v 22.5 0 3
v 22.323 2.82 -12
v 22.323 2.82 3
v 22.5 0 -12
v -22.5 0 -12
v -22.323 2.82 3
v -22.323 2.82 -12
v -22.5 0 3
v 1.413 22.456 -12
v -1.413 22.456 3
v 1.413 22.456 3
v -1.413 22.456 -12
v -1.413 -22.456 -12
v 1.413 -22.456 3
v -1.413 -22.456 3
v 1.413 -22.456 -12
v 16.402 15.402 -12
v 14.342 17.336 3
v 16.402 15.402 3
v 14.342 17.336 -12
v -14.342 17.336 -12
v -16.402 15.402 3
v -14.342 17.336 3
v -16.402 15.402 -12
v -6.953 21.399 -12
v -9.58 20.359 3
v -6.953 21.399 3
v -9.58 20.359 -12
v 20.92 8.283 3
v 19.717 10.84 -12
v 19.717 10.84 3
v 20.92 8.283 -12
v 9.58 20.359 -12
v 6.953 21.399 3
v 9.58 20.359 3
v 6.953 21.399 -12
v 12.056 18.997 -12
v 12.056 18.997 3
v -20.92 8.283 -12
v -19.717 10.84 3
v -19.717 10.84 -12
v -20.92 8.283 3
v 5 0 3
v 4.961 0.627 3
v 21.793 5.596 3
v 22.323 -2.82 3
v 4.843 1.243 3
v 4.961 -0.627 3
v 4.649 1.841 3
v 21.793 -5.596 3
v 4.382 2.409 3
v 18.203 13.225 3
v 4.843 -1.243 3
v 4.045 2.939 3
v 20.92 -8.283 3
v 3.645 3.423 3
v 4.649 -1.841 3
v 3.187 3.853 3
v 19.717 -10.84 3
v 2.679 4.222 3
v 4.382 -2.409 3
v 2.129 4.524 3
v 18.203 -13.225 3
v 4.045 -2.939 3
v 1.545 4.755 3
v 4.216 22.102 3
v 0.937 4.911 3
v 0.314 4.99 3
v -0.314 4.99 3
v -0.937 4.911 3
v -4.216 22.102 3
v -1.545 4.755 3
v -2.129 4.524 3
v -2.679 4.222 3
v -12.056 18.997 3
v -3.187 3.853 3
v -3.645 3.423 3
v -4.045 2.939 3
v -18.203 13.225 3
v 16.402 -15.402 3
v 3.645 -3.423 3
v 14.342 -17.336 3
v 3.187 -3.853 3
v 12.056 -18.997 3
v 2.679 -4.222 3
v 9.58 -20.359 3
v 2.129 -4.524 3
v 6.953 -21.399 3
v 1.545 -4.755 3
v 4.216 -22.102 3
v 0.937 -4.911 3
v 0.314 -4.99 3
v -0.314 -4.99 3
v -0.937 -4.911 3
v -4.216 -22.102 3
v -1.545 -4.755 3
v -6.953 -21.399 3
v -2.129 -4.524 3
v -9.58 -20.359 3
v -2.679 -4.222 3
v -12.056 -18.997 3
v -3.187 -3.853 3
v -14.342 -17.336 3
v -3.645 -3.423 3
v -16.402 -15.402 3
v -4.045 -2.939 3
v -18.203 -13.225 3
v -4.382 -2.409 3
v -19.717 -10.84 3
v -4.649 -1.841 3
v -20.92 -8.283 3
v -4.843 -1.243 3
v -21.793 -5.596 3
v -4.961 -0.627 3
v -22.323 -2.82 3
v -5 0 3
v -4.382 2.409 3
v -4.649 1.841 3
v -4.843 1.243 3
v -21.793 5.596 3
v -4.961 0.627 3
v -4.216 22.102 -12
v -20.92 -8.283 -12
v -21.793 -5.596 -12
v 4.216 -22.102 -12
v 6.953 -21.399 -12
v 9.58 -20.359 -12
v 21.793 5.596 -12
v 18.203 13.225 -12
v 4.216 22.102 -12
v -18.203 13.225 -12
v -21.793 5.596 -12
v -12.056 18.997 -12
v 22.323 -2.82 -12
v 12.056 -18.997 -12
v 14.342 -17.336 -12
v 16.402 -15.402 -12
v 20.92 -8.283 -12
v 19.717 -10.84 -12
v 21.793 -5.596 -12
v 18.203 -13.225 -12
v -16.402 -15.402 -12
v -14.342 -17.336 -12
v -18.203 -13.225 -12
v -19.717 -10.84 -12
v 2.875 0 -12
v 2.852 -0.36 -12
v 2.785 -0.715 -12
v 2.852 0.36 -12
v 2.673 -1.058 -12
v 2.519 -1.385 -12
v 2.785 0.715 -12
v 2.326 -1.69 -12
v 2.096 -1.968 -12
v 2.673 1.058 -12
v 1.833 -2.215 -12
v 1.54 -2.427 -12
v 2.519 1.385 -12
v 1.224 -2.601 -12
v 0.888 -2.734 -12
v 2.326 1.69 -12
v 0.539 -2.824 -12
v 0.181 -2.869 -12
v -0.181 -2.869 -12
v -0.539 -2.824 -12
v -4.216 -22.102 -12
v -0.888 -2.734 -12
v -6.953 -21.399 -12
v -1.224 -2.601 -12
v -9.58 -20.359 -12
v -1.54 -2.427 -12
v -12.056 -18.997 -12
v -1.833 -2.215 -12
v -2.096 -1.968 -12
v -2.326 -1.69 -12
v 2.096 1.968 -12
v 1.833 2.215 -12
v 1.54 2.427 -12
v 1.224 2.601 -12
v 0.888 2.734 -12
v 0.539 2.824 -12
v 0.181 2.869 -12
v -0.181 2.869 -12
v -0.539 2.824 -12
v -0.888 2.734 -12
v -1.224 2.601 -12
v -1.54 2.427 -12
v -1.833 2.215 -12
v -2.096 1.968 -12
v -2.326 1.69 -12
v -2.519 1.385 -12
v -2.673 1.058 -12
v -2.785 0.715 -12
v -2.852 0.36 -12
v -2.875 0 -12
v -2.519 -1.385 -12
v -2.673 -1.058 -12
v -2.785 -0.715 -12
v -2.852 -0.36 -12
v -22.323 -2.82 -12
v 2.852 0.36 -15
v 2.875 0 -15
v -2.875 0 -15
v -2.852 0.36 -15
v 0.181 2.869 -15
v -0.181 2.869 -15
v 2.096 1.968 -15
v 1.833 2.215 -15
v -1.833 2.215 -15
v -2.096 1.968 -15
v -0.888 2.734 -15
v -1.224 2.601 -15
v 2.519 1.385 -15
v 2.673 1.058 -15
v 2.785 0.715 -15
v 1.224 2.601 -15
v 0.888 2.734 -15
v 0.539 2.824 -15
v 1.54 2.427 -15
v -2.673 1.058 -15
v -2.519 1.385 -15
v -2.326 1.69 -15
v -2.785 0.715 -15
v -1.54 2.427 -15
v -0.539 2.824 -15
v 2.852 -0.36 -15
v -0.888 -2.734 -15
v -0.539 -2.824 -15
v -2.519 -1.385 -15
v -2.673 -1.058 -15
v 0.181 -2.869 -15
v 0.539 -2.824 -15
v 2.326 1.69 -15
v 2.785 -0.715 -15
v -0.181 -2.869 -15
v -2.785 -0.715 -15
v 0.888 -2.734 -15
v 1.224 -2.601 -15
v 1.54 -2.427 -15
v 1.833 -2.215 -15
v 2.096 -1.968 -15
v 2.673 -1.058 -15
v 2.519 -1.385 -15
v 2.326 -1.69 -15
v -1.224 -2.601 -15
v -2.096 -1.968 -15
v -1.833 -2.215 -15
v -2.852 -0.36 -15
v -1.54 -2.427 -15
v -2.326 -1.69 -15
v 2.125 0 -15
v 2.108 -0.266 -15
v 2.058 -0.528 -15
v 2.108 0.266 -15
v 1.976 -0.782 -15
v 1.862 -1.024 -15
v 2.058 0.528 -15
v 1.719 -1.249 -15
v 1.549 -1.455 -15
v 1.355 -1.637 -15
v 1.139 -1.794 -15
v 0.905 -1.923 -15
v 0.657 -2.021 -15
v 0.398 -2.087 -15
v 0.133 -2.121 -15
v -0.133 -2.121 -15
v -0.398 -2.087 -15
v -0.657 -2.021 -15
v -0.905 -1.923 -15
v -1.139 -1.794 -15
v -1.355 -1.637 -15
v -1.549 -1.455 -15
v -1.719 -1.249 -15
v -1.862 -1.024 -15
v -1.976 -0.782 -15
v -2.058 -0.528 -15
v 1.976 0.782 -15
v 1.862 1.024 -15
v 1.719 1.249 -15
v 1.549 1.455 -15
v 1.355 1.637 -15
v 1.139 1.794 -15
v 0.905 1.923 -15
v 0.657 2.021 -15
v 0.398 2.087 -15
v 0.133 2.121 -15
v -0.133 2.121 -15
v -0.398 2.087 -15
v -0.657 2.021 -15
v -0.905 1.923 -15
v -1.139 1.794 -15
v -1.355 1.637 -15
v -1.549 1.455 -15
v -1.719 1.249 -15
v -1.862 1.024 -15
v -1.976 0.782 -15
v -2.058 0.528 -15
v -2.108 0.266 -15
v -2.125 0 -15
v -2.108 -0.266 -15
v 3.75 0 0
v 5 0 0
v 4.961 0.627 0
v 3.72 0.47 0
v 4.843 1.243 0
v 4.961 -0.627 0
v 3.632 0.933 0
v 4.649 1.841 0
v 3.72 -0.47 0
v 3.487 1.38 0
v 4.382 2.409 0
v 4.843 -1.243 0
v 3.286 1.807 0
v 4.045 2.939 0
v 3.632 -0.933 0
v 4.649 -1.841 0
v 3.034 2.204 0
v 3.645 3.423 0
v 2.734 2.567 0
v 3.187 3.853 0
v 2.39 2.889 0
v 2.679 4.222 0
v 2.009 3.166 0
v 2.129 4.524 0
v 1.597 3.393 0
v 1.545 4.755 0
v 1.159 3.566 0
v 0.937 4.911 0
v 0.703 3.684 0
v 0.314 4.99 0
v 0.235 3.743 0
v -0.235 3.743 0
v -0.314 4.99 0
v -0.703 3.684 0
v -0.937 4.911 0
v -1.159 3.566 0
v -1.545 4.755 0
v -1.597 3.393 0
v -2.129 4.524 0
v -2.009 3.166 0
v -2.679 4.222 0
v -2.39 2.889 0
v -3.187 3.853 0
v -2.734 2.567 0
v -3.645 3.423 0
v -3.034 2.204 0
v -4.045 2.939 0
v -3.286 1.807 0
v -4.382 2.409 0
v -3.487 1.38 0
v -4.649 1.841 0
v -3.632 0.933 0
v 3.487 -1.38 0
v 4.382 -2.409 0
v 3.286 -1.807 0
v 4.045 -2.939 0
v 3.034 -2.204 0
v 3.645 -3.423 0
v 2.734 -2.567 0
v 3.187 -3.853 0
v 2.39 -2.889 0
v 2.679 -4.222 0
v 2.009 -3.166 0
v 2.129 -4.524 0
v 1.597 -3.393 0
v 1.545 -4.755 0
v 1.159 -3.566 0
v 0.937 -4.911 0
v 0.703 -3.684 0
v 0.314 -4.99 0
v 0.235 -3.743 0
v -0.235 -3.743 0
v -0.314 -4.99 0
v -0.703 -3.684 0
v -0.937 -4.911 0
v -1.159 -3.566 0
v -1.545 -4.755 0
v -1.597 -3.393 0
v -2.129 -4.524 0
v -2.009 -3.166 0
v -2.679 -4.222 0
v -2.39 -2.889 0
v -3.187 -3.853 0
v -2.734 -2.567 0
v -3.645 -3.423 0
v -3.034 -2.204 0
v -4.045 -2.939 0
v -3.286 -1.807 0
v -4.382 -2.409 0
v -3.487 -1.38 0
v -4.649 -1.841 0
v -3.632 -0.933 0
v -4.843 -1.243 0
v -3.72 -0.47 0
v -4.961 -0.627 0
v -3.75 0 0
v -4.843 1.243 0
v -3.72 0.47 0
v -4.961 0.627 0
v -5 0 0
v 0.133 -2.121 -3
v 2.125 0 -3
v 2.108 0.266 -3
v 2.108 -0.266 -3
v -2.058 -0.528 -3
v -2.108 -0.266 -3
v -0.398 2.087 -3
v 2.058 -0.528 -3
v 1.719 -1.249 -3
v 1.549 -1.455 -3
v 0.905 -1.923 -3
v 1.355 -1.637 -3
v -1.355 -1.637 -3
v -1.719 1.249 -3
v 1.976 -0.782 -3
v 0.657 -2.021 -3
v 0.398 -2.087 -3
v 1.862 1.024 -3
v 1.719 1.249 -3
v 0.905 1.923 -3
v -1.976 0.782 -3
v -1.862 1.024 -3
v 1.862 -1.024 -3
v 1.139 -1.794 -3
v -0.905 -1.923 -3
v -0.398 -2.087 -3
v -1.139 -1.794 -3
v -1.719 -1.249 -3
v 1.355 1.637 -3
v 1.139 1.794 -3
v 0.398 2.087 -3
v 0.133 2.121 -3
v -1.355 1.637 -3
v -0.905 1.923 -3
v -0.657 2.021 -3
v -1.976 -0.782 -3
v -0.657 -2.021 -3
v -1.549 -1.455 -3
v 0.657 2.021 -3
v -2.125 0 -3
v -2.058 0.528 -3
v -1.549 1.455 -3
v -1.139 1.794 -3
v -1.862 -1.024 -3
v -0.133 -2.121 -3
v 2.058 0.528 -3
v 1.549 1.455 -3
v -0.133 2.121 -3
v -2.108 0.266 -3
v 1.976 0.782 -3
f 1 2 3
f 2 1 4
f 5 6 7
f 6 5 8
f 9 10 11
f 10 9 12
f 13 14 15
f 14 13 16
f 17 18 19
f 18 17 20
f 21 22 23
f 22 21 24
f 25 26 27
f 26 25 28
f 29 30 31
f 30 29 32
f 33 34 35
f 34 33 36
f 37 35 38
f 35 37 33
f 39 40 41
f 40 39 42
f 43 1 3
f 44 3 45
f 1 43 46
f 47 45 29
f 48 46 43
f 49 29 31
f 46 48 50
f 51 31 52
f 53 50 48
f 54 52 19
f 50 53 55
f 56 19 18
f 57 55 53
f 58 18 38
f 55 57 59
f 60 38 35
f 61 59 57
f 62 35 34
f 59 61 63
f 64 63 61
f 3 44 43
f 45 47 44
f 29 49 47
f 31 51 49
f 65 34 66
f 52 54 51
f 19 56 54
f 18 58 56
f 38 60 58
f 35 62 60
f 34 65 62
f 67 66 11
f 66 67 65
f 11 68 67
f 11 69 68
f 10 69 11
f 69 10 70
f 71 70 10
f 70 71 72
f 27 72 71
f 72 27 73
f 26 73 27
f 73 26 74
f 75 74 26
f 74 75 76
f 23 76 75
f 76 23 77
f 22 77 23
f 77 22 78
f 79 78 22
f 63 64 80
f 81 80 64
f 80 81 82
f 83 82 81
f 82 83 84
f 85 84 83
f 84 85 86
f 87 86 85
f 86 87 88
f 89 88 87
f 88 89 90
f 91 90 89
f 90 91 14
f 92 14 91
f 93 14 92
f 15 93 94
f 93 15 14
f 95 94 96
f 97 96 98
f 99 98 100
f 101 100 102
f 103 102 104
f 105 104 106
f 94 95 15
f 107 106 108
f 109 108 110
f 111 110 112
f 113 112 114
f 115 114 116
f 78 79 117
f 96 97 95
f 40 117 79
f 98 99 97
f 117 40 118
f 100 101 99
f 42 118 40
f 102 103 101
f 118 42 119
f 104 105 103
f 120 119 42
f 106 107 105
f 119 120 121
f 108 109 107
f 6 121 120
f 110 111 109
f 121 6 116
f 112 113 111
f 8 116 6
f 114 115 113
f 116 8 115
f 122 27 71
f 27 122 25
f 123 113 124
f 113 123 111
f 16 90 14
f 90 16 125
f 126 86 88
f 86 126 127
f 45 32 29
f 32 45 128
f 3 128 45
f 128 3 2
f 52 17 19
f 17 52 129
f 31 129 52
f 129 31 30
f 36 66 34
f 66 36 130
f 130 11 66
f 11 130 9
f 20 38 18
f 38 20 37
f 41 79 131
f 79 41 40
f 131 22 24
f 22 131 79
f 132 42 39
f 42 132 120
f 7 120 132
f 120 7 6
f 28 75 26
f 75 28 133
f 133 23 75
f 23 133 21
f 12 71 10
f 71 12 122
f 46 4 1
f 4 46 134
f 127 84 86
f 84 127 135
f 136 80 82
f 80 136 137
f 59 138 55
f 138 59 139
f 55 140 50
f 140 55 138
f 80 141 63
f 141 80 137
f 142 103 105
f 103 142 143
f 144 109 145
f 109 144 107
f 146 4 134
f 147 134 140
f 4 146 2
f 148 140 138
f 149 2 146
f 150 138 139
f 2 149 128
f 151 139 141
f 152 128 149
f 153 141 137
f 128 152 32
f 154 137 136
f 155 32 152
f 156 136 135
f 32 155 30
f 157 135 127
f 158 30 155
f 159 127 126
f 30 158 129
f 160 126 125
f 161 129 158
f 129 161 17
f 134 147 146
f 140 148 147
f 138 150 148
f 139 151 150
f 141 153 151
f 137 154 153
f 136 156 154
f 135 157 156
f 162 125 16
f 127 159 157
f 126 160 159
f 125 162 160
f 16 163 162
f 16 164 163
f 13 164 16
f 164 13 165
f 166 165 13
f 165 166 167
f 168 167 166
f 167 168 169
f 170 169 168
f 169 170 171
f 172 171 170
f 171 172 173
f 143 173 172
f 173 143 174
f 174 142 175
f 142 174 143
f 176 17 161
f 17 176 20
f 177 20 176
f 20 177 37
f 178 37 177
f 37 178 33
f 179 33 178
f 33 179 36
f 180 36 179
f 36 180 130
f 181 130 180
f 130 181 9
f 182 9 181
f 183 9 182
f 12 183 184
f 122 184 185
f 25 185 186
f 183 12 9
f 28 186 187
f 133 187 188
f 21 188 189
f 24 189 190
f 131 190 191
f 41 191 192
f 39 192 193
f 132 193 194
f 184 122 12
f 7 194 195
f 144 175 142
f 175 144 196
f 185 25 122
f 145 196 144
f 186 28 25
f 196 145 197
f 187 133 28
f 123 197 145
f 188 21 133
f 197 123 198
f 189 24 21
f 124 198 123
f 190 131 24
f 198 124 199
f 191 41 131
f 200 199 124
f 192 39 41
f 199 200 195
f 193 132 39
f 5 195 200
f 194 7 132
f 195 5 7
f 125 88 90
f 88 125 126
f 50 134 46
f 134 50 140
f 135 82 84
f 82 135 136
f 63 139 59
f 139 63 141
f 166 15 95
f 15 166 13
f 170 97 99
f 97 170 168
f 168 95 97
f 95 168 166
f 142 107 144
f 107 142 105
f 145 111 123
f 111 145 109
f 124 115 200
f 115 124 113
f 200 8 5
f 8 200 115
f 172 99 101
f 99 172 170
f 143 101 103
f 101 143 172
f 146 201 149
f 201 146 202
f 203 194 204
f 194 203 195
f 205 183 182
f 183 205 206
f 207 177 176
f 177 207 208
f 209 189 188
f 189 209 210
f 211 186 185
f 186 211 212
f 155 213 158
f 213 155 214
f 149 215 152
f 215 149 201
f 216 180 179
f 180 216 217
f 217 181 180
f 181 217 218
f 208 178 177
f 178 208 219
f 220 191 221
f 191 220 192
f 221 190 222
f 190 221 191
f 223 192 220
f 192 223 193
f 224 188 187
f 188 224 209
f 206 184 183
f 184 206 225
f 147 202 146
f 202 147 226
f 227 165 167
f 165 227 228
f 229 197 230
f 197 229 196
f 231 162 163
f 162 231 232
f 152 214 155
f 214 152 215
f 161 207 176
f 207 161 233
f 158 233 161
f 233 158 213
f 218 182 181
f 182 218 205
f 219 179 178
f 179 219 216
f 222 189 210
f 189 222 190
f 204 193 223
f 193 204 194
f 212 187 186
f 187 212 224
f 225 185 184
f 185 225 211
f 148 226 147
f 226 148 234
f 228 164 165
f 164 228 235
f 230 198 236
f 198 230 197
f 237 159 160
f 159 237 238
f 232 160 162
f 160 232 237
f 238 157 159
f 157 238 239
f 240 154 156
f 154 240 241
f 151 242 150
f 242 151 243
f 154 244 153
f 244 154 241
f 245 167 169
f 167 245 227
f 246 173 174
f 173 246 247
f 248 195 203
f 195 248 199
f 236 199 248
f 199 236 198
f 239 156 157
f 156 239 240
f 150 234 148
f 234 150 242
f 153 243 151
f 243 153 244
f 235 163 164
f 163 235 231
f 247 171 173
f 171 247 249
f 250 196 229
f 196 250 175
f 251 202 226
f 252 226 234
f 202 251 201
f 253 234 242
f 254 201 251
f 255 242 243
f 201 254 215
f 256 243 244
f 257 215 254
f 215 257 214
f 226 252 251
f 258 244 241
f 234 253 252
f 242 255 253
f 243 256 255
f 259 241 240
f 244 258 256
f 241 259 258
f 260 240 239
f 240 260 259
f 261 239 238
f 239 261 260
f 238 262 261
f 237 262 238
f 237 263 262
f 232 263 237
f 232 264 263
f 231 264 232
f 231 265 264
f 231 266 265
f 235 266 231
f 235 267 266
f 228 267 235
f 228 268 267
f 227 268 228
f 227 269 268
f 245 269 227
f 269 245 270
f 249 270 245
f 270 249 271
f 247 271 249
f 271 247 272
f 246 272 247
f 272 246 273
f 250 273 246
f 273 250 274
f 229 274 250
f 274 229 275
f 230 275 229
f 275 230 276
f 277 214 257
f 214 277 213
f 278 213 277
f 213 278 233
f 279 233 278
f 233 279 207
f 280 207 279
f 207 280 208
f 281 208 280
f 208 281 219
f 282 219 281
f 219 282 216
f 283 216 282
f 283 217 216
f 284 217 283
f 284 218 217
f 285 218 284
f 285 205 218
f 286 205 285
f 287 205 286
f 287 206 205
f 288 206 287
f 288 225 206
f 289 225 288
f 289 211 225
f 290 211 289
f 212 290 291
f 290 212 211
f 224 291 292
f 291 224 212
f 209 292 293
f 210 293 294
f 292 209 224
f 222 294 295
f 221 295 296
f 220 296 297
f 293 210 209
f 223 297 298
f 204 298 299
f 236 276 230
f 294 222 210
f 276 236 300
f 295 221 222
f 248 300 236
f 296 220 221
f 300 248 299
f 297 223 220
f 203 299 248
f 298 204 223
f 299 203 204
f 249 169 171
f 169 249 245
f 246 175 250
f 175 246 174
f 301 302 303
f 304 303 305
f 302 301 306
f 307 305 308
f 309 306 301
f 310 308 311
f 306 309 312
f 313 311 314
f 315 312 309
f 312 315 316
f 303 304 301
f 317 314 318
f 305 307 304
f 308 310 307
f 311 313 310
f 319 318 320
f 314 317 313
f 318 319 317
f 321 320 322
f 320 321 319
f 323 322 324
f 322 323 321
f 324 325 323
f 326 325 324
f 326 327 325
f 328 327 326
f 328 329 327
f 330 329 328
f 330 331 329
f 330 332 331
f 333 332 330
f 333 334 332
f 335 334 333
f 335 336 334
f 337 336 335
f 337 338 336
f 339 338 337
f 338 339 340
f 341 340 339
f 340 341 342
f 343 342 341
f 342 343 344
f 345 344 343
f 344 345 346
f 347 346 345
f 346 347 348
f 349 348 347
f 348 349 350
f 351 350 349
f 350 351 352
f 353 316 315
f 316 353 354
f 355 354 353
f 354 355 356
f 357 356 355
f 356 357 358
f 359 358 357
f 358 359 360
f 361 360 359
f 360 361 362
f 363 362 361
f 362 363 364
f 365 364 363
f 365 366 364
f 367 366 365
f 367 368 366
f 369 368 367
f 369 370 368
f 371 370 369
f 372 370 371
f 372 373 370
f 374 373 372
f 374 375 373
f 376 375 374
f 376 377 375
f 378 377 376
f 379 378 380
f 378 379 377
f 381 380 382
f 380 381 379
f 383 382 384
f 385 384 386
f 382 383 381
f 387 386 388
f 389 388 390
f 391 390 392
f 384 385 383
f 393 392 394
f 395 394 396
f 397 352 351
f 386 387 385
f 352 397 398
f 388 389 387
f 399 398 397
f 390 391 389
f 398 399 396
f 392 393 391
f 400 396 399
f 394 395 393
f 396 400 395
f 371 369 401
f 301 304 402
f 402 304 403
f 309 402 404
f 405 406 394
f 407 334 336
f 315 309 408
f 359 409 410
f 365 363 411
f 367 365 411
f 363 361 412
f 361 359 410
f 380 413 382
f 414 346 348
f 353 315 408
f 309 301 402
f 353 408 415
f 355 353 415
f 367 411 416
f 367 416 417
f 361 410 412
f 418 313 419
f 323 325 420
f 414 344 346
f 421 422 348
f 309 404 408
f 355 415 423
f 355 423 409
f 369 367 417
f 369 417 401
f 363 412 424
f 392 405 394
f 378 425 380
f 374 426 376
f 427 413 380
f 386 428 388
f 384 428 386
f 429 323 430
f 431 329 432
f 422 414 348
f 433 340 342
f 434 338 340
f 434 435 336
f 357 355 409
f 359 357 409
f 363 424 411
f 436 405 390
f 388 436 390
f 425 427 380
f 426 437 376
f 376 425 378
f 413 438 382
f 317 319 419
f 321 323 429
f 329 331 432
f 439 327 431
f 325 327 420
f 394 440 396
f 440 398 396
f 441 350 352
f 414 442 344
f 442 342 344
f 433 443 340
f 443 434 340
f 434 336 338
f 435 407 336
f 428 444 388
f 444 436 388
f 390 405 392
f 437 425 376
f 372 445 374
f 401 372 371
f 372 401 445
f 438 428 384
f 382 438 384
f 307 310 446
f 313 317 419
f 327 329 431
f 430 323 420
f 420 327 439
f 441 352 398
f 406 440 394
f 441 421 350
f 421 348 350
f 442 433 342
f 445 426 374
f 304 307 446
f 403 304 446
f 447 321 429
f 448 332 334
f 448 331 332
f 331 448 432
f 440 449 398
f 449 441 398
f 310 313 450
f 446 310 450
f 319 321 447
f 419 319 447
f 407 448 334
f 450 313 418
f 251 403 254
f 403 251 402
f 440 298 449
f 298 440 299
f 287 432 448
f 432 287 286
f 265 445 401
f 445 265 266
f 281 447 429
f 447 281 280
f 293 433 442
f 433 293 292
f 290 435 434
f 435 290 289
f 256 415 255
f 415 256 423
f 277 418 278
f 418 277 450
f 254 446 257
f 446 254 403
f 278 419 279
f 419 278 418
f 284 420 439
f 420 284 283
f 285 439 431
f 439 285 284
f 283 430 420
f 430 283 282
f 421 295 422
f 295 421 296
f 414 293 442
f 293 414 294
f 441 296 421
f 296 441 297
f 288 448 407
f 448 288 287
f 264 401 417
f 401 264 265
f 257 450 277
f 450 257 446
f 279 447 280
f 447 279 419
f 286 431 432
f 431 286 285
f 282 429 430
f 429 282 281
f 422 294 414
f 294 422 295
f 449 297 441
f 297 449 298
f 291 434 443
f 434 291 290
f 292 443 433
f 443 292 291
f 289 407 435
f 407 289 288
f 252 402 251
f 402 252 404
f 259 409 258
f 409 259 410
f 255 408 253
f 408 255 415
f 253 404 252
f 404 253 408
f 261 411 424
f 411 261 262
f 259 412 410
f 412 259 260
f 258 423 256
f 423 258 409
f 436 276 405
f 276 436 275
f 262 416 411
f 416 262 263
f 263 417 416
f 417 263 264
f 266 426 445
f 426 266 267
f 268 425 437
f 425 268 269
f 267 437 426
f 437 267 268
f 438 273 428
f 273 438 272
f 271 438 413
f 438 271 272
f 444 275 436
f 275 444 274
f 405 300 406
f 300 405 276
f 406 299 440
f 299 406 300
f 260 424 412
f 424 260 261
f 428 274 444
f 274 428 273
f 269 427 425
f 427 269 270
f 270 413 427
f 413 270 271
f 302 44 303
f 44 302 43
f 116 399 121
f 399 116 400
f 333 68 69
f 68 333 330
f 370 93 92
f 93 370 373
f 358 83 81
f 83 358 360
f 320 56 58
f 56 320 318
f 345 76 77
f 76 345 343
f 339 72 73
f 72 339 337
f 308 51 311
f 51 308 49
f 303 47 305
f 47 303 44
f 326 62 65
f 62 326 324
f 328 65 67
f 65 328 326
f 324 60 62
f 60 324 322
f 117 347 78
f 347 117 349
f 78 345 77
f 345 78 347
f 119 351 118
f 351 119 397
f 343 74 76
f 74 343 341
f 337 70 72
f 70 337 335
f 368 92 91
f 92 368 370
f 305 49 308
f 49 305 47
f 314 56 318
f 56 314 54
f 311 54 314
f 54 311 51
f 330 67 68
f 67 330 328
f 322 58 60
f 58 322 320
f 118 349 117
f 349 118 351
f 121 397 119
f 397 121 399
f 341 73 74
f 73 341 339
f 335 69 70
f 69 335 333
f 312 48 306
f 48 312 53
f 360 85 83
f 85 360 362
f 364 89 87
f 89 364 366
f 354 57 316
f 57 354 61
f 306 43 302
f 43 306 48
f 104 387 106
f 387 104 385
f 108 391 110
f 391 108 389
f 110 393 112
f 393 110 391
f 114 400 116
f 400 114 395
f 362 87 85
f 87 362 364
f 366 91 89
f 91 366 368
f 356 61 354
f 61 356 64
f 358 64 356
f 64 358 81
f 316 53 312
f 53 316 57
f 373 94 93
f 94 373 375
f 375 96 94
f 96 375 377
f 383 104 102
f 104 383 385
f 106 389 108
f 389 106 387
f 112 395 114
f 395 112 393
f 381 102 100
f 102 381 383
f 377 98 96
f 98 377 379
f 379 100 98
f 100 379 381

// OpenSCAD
$fn = 50;


difference() {
	union() {
		translate(v = [0, 0, -12.0000000000]) {
			cylinder(h = 15, r = 22.5000000000);
		}
		#translate(v = [0, 0, -15.0000000000]) {
			cylinder(h = 15, r = 2.8750000000);
		}
	}
	union() {
		translate(v = [0, 0, 0]) {
			rotate(a = [0, 0, 0]) {
				difference() {
					union() {
						translate(v = [0, 0, -15.0000000000]) {
							cylinder(h = 15, r = 2.0000000000);
						}
						translate(v = [0, 0, -3]) {
							cylinder(h = 3, r1 = 2.1250000000, r2 = 3.7500000000);
						}
						translate(v = [0, 0, -15.0000000000]) {
							cylinder(h = 15, r = 2.1250000000);
						}
						translate(v = [0, 0, -15.0000000000]) {
							cylinder(h = 15, r = 2.0000000000);
						}
					}
					union();
				}
			}
		}
		#cylinder(h = 3, r = 5.0000000000);
	}
}
